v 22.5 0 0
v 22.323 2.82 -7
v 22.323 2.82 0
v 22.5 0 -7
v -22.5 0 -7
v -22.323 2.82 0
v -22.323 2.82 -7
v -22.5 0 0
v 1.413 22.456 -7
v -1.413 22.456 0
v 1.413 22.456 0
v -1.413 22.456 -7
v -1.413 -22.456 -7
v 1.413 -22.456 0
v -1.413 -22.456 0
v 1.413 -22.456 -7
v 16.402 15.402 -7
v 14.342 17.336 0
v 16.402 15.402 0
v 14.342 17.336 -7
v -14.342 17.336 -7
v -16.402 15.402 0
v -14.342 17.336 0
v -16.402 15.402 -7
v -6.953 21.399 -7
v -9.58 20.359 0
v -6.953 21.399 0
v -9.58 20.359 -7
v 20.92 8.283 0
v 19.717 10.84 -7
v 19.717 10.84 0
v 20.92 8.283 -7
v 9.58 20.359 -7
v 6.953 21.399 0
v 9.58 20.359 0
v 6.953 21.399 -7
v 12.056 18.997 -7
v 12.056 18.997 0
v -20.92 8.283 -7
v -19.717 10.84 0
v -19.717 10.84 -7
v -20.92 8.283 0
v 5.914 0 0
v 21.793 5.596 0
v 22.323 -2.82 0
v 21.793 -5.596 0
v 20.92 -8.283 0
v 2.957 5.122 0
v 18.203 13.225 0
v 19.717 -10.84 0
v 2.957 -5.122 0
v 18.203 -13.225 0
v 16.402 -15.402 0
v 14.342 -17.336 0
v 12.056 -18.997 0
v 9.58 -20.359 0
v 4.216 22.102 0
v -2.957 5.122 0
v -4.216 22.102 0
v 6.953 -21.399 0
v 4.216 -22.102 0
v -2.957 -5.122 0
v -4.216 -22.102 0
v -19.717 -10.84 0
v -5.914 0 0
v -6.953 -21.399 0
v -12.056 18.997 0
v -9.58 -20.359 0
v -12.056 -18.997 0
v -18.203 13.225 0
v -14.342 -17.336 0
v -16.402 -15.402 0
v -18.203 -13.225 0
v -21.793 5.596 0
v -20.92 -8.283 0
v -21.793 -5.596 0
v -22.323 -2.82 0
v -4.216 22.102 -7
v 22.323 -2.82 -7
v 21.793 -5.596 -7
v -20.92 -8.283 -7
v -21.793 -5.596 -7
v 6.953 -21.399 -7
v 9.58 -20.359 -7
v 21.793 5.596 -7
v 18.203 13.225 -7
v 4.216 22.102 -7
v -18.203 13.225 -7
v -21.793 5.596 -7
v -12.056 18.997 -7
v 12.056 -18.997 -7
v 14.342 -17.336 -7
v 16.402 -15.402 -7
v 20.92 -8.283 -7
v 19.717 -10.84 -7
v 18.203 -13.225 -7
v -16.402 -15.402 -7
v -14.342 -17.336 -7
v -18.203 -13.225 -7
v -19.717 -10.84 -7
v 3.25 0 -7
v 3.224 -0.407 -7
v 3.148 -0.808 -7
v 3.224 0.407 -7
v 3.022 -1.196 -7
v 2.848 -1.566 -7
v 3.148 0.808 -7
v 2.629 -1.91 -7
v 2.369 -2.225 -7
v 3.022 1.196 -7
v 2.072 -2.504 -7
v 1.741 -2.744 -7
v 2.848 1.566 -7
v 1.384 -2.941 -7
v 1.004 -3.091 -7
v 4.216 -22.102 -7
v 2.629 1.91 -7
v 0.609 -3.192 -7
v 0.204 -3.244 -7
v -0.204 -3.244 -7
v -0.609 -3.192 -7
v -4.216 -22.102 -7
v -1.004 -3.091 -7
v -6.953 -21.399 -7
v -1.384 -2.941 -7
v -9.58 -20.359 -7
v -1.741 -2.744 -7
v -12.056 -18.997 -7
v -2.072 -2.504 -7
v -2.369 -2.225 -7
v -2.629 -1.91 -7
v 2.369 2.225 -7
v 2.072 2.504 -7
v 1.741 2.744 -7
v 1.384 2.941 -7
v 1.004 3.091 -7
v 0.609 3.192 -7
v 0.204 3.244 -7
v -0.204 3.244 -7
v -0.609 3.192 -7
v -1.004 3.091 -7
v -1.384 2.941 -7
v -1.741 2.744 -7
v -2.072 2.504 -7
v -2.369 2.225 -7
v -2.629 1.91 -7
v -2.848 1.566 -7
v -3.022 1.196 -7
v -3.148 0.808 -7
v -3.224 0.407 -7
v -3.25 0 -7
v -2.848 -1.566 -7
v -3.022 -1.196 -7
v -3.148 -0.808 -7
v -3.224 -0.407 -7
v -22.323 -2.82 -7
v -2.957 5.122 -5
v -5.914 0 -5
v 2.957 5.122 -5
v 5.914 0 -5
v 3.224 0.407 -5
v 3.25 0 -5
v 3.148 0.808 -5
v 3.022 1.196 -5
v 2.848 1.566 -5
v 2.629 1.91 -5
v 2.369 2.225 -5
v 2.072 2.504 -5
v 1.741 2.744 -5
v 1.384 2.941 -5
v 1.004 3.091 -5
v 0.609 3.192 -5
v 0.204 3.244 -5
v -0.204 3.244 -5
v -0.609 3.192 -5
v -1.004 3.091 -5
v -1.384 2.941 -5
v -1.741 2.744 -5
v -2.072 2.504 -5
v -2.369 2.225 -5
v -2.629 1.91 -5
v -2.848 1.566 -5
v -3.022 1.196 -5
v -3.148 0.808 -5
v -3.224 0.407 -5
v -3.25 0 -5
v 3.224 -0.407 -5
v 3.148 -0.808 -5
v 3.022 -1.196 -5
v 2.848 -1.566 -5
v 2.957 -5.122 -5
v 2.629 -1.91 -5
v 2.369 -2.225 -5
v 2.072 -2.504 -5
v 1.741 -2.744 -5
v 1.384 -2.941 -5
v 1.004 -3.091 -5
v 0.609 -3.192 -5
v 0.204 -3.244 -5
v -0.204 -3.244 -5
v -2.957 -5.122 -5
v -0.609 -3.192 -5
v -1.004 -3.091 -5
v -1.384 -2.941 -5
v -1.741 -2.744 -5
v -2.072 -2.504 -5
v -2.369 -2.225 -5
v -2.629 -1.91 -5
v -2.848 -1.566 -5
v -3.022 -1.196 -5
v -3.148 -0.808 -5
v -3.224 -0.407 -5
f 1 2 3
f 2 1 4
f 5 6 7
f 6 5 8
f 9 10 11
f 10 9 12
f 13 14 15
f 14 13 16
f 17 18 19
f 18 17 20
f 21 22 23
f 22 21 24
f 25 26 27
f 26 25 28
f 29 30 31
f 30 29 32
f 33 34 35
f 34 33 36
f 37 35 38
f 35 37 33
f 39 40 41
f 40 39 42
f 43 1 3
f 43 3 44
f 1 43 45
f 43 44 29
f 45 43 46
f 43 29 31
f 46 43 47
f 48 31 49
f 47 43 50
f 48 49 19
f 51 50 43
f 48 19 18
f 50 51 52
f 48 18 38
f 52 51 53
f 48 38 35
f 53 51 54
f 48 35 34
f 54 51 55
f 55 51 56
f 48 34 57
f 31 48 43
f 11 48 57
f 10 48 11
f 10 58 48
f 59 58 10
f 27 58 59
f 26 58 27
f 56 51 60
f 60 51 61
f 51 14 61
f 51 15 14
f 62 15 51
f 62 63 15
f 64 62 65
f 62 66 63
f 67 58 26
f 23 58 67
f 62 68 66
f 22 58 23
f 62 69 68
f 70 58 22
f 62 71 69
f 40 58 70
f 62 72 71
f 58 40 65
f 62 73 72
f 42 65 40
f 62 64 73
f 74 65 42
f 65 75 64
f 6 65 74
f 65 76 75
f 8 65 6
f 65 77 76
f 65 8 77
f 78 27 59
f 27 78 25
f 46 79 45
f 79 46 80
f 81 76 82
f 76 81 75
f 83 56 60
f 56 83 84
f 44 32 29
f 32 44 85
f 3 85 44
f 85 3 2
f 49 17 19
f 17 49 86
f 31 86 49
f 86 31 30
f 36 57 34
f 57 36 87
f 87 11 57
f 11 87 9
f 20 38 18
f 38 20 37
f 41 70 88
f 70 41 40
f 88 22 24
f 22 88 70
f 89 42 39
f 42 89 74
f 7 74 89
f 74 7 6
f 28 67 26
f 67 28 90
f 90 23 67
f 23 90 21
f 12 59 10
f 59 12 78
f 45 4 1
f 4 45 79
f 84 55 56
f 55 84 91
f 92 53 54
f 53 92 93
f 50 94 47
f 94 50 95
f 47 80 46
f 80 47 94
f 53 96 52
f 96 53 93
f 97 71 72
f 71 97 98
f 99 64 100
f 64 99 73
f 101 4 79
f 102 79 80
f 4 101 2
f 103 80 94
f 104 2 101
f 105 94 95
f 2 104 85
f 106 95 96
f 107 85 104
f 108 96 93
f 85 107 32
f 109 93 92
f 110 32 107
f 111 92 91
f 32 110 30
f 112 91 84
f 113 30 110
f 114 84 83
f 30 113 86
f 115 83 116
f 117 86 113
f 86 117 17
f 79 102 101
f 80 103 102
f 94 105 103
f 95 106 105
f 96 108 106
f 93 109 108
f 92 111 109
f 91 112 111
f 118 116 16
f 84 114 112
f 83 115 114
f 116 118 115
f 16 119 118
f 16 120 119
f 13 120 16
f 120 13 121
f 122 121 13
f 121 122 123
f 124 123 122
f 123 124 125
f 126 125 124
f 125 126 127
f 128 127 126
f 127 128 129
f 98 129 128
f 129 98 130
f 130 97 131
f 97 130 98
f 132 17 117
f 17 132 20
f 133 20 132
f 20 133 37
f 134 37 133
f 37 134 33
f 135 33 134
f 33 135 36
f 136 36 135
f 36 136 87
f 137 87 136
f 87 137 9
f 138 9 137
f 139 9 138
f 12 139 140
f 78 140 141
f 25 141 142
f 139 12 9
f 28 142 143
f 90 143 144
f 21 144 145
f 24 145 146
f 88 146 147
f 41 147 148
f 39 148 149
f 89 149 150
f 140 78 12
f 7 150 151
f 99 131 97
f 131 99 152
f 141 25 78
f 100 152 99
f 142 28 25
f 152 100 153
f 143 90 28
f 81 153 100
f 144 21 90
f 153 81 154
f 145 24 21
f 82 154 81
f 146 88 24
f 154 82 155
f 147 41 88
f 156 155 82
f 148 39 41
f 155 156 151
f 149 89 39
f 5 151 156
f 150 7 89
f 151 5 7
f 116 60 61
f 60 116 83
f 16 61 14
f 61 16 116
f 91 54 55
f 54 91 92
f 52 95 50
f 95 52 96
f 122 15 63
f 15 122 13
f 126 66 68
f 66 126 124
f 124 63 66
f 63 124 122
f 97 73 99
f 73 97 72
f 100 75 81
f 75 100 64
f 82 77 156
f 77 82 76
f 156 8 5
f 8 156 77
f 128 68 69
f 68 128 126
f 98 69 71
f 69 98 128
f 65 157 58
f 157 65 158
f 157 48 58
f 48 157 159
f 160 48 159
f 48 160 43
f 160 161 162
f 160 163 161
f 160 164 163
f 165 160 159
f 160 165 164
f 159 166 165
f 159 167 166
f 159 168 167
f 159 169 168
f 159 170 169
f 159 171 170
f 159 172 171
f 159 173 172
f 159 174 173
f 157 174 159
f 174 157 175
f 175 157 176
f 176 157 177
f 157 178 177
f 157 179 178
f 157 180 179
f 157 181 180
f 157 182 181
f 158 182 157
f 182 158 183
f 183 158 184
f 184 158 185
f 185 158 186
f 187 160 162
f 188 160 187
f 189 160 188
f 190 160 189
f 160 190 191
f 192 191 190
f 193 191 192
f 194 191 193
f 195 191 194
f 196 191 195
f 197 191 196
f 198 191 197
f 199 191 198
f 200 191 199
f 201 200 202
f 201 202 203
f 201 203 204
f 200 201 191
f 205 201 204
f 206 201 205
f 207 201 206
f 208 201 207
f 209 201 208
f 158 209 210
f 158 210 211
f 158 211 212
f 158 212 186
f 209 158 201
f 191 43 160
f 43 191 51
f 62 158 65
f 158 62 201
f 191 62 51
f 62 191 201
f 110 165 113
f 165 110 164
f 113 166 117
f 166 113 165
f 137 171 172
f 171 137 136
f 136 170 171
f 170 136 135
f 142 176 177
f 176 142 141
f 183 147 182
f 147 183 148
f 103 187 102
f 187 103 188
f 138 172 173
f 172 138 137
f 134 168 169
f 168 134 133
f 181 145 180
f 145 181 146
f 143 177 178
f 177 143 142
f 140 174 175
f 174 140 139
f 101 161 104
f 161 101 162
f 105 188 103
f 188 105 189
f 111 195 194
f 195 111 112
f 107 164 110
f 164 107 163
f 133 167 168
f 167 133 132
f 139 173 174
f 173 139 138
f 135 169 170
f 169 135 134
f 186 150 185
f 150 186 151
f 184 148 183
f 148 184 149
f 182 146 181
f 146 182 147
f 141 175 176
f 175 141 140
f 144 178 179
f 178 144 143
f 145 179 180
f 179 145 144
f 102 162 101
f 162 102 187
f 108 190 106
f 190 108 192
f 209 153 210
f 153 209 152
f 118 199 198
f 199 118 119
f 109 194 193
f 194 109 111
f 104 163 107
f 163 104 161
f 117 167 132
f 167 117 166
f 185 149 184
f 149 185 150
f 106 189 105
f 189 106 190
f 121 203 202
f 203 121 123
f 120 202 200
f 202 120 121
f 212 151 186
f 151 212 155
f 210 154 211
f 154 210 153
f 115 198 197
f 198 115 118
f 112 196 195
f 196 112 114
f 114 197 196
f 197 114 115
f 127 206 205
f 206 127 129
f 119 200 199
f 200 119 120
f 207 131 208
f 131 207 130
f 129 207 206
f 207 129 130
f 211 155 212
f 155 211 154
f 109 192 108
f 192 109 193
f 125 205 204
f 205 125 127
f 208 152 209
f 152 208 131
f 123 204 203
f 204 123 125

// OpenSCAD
$fn = 50;

difference() {
	union() {
		translate(v = [0, 0, -7.0]) {
			cylinder(h = 7.0, r = 22.5);
		}
		#translate(v = [0, 0, -8.5]) {
			cylinder(h = 8.5, r = 2.875);
		}
	}
	union() {
		translate(v = [0, 0, 0]) {
			rotate(a = [0, 0, 0]) {
				difference() {
					union() {
						translate(v = [0, 0, -5]) {
							linear_extrude(height = 5) {
								polygon(points = [[5.914249999999999, 0.0], [2.957125, 5.1218907443321156], [-2.9571249999999982, 5.1218907443321156], [-5.914249999999999, 7.242867331857232e-16], [-2.9571250000000022, -5.121890744332115], [2.9571249999999956, -5.121890744332118]]);
							}
						}
					}
					union();
				}
			}
		}
		#translate(v = [0, 0, -100.0]) {
			cylinder(h = 200, r = 3.25);
		}
	}
}
